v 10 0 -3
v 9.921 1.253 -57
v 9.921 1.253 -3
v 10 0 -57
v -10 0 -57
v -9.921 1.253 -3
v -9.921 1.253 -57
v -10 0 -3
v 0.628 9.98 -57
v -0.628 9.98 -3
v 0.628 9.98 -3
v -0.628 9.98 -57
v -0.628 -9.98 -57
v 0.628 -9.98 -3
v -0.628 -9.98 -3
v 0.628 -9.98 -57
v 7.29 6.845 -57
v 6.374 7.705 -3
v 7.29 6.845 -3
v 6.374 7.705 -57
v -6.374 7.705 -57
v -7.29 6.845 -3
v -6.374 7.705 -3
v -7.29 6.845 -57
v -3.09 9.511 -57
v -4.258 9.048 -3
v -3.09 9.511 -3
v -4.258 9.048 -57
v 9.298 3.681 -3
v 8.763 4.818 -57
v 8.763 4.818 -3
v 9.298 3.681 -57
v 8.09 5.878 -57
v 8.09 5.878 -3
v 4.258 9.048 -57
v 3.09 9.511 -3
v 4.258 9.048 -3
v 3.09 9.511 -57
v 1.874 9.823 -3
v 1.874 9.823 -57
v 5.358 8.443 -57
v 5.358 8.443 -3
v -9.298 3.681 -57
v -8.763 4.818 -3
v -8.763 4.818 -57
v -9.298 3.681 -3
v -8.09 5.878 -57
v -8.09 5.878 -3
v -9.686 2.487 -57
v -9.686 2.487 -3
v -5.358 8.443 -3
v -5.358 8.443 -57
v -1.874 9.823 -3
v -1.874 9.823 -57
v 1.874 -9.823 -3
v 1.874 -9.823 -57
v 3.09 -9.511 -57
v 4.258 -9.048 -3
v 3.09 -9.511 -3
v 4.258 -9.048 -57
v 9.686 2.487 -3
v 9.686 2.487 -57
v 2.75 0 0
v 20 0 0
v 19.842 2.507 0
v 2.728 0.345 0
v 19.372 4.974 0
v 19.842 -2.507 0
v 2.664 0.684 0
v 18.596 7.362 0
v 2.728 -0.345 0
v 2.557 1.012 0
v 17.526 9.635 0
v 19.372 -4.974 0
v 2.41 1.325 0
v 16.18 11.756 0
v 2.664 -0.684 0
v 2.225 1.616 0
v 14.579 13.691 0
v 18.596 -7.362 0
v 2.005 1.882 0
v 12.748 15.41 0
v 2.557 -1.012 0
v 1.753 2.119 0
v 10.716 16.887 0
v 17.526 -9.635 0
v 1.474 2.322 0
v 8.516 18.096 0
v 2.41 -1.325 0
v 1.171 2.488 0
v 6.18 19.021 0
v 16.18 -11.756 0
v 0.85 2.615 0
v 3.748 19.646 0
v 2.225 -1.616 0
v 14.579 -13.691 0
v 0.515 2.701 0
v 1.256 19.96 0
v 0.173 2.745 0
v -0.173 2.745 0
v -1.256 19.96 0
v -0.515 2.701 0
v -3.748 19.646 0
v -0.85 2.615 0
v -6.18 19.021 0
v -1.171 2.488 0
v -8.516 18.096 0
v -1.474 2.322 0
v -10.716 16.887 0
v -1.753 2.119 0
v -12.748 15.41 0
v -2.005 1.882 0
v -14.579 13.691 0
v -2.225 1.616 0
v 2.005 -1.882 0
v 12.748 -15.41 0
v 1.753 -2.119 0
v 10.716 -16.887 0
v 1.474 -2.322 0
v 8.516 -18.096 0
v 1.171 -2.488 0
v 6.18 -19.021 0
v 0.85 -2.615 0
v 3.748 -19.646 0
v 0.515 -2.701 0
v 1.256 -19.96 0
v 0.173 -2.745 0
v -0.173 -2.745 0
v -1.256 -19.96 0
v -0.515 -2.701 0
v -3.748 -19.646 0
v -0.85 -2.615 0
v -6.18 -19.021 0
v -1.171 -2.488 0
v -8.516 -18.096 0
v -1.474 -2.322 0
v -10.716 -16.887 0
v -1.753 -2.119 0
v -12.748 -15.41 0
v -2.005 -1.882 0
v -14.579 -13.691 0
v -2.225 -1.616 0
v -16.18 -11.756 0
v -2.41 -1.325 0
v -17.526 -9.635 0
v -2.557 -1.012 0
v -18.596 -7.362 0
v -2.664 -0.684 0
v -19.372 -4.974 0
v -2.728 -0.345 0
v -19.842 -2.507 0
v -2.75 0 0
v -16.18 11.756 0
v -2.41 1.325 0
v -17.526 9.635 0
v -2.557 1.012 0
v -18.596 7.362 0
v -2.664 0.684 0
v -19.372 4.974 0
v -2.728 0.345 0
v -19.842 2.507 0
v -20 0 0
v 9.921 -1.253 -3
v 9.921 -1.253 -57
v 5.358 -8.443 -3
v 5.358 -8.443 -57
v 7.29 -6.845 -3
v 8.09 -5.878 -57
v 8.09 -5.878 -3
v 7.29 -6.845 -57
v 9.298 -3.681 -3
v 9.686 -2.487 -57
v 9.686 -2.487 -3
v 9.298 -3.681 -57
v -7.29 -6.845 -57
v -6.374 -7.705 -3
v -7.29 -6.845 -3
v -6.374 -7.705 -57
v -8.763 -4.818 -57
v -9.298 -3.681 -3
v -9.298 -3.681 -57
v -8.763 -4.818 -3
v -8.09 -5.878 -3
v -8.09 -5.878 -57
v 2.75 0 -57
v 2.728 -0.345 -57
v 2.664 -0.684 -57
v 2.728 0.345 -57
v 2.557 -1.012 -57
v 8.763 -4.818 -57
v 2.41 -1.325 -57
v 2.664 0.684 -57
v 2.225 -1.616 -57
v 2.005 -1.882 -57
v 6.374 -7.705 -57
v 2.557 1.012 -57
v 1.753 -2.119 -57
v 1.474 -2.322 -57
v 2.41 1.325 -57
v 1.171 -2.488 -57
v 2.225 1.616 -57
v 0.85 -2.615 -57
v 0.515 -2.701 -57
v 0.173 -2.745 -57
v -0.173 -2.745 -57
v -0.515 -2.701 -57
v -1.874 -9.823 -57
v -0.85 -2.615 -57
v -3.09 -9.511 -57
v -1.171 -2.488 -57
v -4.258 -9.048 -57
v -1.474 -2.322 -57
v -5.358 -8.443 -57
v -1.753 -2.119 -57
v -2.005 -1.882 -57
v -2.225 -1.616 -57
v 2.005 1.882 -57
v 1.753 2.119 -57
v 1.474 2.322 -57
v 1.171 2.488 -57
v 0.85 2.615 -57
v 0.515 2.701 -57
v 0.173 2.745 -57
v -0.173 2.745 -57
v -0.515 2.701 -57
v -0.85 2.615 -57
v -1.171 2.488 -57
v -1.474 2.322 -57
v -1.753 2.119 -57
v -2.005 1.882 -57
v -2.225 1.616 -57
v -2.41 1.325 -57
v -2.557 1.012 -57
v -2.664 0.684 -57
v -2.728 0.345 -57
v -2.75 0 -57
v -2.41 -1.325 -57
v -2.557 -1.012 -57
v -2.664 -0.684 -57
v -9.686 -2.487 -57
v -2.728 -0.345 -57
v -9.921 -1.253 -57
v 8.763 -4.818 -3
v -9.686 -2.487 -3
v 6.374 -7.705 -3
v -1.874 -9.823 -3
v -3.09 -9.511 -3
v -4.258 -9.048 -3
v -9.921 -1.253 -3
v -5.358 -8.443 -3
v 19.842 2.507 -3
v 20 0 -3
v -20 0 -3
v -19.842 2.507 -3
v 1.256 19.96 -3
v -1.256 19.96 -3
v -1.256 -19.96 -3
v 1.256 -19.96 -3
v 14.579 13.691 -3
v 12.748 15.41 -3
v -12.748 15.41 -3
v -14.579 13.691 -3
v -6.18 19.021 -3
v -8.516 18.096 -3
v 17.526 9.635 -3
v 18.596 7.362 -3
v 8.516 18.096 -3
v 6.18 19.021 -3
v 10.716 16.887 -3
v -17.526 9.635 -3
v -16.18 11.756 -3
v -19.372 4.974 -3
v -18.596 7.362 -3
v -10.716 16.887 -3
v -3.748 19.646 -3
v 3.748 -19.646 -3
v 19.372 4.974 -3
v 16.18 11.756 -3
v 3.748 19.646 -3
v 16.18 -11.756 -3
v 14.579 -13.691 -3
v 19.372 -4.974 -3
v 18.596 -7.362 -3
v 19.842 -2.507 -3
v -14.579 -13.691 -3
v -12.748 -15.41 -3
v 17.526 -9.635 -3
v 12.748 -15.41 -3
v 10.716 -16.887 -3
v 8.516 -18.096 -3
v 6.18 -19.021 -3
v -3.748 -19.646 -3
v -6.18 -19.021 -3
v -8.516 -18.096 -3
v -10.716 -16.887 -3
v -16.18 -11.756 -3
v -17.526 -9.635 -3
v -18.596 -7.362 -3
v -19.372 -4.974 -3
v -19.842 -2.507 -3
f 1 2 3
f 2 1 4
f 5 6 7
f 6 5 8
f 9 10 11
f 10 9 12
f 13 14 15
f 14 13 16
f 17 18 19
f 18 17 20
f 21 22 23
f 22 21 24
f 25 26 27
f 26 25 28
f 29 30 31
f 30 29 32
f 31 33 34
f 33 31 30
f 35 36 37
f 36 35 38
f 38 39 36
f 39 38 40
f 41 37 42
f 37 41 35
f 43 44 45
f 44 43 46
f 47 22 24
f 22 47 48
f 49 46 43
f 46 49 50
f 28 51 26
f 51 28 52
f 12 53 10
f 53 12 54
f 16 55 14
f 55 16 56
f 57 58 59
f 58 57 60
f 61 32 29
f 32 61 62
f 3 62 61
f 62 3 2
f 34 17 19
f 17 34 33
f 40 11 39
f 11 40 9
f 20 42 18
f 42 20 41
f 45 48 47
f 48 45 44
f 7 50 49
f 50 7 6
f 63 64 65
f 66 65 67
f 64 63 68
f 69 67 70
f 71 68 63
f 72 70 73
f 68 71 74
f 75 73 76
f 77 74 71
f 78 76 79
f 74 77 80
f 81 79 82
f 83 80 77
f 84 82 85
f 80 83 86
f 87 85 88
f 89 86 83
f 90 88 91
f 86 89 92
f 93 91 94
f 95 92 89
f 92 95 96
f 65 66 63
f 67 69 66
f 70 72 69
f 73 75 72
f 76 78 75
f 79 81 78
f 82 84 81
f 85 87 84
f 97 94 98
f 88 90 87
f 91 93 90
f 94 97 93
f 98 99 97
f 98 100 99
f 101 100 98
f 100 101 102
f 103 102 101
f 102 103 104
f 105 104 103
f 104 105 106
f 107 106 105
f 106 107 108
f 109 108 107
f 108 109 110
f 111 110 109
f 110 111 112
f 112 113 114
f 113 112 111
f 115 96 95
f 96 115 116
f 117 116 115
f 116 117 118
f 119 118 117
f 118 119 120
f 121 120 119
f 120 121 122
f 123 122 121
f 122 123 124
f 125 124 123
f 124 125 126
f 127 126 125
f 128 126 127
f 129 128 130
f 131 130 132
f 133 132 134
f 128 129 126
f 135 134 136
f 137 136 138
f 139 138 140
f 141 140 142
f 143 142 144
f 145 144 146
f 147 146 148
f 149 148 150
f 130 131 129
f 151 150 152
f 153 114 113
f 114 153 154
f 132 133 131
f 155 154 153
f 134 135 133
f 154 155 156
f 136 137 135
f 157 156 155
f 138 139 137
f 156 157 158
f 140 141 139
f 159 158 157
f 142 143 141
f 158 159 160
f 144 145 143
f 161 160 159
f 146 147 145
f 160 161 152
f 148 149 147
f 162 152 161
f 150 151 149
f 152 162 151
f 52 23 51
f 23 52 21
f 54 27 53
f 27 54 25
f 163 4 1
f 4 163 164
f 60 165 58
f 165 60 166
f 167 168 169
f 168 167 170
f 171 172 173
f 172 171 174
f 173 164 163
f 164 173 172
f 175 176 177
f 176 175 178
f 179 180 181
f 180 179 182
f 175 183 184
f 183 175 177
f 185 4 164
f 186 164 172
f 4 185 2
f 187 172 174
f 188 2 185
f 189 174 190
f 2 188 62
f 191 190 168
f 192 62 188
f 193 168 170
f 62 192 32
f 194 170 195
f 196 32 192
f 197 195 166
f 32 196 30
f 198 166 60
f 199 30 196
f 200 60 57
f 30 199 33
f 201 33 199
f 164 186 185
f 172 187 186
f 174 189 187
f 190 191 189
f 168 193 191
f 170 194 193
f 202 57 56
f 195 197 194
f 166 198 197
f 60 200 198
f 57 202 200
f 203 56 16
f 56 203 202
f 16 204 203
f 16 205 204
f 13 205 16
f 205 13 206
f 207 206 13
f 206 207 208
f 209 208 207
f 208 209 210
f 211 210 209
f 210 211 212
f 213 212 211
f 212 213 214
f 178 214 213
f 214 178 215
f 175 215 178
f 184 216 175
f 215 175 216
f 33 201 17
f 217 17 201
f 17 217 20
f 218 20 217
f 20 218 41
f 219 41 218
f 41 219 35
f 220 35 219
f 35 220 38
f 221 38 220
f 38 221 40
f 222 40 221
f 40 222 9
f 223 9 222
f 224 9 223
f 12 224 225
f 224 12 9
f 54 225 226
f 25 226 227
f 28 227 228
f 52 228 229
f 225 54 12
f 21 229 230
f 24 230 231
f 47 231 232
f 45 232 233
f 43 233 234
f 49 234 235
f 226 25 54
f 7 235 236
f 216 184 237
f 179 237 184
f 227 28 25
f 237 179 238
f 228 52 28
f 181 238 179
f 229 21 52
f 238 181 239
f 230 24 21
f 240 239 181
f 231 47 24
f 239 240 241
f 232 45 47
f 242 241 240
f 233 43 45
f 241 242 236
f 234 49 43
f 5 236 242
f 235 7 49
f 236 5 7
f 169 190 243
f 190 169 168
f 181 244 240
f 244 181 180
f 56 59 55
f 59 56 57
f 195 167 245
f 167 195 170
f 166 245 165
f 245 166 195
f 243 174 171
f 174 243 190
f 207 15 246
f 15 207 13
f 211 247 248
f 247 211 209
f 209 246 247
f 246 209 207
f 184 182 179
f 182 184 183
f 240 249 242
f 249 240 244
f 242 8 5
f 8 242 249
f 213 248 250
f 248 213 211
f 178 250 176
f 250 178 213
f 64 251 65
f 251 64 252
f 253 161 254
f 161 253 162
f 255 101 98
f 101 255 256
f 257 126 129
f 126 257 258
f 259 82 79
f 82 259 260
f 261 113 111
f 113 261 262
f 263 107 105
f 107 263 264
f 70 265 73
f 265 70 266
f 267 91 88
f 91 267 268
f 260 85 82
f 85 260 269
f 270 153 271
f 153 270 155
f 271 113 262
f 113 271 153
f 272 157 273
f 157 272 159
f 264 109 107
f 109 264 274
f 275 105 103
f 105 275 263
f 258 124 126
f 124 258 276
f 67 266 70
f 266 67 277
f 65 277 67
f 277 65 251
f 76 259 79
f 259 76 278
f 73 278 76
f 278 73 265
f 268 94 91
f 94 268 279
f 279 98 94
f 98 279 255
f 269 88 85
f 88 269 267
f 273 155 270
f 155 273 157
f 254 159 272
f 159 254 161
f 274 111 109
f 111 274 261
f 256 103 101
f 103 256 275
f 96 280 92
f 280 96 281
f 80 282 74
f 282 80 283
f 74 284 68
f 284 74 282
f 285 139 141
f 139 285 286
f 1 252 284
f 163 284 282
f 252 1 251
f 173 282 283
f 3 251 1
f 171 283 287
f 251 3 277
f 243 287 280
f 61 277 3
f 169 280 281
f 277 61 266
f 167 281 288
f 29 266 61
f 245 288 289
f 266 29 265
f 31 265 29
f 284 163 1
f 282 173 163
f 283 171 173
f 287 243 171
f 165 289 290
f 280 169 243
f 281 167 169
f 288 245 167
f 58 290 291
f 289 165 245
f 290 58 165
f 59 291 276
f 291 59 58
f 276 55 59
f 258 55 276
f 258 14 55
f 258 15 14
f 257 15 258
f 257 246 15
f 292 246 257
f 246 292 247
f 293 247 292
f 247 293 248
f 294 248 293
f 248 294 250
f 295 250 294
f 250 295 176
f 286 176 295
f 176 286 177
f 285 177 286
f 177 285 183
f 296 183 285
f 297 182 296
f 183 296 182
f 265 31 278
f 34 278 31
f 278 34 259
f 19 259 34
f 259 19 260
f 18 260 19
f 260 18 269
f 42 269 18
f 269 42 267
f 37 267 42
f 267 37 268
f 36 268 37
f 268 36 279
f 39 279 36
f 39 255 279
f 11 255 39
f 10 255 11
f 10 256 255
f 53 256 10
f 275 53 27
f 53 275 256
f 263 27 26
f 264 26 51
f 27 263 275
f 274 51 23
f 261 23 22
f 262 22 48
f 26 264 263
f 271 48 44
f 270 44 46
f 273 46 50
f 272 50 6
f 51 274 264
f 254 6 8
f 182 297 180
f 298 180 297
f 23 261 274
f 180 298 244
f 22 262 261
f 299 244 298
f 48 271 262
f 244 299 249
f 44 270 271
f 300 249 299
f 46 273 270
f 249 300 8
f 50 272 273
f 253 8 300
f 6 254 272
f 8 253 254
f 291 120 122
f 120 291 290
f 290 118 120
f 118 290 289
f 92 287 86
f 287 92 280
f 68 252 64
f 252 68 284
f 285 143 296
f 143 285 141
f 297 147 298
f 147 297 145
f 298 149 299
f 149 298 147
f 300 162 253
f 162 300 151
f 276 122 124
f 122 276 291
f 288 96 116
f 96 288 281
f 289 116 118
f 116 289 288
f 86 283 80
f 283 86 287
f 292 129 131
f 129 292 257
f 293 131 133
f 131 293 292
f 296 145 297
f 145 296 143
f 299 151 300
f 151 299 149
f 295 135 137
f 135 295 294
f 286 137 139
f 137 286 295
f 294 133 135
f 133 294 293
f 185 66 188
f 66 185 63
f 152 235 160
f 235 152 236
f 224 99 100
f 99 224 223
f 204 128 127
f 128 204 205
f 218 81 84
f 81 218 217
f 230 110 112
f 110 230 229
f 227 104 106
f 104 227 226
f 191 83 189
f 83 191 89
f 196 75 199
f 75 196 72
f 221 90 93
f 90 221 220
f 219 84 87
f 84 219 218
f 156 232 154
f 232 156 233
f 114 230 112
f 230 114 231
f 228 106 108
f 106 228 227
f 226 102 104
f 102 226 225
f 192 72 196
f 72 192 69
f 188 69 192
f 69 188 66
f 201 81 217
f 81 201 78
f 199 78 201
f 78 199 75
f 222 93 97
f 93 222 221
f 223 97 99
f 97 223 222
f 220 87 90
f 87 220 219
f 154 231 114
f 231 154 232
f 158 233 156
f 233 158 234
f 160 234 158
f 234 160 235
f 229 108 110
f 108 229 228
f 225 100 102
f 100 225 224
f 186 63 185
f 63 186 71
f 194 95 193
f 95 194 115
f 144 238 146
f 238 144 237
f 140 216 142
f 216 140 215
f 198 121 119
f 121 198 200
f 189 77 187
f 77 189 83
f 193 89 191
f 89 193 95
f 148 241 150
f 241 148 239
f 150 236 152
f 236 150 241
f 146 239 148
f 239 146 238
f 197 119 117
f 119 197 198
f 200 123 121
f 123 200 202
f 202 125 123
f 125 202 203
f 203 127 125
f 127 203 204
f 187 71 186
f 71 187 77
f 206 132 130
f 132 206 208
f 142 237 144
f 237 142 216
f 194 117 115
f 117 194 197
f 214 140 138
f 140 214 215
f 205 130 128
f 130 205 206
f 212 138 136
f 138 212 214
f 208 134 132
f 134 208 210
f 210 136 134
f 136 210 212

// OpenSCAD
$fn = 50;


difference() {
	union() {
		translate(v = [0, 0, -57.0000000000]) {
			cylinder(h = 57, r = 10.0000000000);
		}
		translate(v = [0, 0, -3.0000000000]) {
			cylinder(h = 3, r = 20.0000000000);
		}
	}
	union() {
		#translate(v = [0, 0, -57]) {
			cylinder(h = 57, r = 2.7500000000);
		}
	}
}
